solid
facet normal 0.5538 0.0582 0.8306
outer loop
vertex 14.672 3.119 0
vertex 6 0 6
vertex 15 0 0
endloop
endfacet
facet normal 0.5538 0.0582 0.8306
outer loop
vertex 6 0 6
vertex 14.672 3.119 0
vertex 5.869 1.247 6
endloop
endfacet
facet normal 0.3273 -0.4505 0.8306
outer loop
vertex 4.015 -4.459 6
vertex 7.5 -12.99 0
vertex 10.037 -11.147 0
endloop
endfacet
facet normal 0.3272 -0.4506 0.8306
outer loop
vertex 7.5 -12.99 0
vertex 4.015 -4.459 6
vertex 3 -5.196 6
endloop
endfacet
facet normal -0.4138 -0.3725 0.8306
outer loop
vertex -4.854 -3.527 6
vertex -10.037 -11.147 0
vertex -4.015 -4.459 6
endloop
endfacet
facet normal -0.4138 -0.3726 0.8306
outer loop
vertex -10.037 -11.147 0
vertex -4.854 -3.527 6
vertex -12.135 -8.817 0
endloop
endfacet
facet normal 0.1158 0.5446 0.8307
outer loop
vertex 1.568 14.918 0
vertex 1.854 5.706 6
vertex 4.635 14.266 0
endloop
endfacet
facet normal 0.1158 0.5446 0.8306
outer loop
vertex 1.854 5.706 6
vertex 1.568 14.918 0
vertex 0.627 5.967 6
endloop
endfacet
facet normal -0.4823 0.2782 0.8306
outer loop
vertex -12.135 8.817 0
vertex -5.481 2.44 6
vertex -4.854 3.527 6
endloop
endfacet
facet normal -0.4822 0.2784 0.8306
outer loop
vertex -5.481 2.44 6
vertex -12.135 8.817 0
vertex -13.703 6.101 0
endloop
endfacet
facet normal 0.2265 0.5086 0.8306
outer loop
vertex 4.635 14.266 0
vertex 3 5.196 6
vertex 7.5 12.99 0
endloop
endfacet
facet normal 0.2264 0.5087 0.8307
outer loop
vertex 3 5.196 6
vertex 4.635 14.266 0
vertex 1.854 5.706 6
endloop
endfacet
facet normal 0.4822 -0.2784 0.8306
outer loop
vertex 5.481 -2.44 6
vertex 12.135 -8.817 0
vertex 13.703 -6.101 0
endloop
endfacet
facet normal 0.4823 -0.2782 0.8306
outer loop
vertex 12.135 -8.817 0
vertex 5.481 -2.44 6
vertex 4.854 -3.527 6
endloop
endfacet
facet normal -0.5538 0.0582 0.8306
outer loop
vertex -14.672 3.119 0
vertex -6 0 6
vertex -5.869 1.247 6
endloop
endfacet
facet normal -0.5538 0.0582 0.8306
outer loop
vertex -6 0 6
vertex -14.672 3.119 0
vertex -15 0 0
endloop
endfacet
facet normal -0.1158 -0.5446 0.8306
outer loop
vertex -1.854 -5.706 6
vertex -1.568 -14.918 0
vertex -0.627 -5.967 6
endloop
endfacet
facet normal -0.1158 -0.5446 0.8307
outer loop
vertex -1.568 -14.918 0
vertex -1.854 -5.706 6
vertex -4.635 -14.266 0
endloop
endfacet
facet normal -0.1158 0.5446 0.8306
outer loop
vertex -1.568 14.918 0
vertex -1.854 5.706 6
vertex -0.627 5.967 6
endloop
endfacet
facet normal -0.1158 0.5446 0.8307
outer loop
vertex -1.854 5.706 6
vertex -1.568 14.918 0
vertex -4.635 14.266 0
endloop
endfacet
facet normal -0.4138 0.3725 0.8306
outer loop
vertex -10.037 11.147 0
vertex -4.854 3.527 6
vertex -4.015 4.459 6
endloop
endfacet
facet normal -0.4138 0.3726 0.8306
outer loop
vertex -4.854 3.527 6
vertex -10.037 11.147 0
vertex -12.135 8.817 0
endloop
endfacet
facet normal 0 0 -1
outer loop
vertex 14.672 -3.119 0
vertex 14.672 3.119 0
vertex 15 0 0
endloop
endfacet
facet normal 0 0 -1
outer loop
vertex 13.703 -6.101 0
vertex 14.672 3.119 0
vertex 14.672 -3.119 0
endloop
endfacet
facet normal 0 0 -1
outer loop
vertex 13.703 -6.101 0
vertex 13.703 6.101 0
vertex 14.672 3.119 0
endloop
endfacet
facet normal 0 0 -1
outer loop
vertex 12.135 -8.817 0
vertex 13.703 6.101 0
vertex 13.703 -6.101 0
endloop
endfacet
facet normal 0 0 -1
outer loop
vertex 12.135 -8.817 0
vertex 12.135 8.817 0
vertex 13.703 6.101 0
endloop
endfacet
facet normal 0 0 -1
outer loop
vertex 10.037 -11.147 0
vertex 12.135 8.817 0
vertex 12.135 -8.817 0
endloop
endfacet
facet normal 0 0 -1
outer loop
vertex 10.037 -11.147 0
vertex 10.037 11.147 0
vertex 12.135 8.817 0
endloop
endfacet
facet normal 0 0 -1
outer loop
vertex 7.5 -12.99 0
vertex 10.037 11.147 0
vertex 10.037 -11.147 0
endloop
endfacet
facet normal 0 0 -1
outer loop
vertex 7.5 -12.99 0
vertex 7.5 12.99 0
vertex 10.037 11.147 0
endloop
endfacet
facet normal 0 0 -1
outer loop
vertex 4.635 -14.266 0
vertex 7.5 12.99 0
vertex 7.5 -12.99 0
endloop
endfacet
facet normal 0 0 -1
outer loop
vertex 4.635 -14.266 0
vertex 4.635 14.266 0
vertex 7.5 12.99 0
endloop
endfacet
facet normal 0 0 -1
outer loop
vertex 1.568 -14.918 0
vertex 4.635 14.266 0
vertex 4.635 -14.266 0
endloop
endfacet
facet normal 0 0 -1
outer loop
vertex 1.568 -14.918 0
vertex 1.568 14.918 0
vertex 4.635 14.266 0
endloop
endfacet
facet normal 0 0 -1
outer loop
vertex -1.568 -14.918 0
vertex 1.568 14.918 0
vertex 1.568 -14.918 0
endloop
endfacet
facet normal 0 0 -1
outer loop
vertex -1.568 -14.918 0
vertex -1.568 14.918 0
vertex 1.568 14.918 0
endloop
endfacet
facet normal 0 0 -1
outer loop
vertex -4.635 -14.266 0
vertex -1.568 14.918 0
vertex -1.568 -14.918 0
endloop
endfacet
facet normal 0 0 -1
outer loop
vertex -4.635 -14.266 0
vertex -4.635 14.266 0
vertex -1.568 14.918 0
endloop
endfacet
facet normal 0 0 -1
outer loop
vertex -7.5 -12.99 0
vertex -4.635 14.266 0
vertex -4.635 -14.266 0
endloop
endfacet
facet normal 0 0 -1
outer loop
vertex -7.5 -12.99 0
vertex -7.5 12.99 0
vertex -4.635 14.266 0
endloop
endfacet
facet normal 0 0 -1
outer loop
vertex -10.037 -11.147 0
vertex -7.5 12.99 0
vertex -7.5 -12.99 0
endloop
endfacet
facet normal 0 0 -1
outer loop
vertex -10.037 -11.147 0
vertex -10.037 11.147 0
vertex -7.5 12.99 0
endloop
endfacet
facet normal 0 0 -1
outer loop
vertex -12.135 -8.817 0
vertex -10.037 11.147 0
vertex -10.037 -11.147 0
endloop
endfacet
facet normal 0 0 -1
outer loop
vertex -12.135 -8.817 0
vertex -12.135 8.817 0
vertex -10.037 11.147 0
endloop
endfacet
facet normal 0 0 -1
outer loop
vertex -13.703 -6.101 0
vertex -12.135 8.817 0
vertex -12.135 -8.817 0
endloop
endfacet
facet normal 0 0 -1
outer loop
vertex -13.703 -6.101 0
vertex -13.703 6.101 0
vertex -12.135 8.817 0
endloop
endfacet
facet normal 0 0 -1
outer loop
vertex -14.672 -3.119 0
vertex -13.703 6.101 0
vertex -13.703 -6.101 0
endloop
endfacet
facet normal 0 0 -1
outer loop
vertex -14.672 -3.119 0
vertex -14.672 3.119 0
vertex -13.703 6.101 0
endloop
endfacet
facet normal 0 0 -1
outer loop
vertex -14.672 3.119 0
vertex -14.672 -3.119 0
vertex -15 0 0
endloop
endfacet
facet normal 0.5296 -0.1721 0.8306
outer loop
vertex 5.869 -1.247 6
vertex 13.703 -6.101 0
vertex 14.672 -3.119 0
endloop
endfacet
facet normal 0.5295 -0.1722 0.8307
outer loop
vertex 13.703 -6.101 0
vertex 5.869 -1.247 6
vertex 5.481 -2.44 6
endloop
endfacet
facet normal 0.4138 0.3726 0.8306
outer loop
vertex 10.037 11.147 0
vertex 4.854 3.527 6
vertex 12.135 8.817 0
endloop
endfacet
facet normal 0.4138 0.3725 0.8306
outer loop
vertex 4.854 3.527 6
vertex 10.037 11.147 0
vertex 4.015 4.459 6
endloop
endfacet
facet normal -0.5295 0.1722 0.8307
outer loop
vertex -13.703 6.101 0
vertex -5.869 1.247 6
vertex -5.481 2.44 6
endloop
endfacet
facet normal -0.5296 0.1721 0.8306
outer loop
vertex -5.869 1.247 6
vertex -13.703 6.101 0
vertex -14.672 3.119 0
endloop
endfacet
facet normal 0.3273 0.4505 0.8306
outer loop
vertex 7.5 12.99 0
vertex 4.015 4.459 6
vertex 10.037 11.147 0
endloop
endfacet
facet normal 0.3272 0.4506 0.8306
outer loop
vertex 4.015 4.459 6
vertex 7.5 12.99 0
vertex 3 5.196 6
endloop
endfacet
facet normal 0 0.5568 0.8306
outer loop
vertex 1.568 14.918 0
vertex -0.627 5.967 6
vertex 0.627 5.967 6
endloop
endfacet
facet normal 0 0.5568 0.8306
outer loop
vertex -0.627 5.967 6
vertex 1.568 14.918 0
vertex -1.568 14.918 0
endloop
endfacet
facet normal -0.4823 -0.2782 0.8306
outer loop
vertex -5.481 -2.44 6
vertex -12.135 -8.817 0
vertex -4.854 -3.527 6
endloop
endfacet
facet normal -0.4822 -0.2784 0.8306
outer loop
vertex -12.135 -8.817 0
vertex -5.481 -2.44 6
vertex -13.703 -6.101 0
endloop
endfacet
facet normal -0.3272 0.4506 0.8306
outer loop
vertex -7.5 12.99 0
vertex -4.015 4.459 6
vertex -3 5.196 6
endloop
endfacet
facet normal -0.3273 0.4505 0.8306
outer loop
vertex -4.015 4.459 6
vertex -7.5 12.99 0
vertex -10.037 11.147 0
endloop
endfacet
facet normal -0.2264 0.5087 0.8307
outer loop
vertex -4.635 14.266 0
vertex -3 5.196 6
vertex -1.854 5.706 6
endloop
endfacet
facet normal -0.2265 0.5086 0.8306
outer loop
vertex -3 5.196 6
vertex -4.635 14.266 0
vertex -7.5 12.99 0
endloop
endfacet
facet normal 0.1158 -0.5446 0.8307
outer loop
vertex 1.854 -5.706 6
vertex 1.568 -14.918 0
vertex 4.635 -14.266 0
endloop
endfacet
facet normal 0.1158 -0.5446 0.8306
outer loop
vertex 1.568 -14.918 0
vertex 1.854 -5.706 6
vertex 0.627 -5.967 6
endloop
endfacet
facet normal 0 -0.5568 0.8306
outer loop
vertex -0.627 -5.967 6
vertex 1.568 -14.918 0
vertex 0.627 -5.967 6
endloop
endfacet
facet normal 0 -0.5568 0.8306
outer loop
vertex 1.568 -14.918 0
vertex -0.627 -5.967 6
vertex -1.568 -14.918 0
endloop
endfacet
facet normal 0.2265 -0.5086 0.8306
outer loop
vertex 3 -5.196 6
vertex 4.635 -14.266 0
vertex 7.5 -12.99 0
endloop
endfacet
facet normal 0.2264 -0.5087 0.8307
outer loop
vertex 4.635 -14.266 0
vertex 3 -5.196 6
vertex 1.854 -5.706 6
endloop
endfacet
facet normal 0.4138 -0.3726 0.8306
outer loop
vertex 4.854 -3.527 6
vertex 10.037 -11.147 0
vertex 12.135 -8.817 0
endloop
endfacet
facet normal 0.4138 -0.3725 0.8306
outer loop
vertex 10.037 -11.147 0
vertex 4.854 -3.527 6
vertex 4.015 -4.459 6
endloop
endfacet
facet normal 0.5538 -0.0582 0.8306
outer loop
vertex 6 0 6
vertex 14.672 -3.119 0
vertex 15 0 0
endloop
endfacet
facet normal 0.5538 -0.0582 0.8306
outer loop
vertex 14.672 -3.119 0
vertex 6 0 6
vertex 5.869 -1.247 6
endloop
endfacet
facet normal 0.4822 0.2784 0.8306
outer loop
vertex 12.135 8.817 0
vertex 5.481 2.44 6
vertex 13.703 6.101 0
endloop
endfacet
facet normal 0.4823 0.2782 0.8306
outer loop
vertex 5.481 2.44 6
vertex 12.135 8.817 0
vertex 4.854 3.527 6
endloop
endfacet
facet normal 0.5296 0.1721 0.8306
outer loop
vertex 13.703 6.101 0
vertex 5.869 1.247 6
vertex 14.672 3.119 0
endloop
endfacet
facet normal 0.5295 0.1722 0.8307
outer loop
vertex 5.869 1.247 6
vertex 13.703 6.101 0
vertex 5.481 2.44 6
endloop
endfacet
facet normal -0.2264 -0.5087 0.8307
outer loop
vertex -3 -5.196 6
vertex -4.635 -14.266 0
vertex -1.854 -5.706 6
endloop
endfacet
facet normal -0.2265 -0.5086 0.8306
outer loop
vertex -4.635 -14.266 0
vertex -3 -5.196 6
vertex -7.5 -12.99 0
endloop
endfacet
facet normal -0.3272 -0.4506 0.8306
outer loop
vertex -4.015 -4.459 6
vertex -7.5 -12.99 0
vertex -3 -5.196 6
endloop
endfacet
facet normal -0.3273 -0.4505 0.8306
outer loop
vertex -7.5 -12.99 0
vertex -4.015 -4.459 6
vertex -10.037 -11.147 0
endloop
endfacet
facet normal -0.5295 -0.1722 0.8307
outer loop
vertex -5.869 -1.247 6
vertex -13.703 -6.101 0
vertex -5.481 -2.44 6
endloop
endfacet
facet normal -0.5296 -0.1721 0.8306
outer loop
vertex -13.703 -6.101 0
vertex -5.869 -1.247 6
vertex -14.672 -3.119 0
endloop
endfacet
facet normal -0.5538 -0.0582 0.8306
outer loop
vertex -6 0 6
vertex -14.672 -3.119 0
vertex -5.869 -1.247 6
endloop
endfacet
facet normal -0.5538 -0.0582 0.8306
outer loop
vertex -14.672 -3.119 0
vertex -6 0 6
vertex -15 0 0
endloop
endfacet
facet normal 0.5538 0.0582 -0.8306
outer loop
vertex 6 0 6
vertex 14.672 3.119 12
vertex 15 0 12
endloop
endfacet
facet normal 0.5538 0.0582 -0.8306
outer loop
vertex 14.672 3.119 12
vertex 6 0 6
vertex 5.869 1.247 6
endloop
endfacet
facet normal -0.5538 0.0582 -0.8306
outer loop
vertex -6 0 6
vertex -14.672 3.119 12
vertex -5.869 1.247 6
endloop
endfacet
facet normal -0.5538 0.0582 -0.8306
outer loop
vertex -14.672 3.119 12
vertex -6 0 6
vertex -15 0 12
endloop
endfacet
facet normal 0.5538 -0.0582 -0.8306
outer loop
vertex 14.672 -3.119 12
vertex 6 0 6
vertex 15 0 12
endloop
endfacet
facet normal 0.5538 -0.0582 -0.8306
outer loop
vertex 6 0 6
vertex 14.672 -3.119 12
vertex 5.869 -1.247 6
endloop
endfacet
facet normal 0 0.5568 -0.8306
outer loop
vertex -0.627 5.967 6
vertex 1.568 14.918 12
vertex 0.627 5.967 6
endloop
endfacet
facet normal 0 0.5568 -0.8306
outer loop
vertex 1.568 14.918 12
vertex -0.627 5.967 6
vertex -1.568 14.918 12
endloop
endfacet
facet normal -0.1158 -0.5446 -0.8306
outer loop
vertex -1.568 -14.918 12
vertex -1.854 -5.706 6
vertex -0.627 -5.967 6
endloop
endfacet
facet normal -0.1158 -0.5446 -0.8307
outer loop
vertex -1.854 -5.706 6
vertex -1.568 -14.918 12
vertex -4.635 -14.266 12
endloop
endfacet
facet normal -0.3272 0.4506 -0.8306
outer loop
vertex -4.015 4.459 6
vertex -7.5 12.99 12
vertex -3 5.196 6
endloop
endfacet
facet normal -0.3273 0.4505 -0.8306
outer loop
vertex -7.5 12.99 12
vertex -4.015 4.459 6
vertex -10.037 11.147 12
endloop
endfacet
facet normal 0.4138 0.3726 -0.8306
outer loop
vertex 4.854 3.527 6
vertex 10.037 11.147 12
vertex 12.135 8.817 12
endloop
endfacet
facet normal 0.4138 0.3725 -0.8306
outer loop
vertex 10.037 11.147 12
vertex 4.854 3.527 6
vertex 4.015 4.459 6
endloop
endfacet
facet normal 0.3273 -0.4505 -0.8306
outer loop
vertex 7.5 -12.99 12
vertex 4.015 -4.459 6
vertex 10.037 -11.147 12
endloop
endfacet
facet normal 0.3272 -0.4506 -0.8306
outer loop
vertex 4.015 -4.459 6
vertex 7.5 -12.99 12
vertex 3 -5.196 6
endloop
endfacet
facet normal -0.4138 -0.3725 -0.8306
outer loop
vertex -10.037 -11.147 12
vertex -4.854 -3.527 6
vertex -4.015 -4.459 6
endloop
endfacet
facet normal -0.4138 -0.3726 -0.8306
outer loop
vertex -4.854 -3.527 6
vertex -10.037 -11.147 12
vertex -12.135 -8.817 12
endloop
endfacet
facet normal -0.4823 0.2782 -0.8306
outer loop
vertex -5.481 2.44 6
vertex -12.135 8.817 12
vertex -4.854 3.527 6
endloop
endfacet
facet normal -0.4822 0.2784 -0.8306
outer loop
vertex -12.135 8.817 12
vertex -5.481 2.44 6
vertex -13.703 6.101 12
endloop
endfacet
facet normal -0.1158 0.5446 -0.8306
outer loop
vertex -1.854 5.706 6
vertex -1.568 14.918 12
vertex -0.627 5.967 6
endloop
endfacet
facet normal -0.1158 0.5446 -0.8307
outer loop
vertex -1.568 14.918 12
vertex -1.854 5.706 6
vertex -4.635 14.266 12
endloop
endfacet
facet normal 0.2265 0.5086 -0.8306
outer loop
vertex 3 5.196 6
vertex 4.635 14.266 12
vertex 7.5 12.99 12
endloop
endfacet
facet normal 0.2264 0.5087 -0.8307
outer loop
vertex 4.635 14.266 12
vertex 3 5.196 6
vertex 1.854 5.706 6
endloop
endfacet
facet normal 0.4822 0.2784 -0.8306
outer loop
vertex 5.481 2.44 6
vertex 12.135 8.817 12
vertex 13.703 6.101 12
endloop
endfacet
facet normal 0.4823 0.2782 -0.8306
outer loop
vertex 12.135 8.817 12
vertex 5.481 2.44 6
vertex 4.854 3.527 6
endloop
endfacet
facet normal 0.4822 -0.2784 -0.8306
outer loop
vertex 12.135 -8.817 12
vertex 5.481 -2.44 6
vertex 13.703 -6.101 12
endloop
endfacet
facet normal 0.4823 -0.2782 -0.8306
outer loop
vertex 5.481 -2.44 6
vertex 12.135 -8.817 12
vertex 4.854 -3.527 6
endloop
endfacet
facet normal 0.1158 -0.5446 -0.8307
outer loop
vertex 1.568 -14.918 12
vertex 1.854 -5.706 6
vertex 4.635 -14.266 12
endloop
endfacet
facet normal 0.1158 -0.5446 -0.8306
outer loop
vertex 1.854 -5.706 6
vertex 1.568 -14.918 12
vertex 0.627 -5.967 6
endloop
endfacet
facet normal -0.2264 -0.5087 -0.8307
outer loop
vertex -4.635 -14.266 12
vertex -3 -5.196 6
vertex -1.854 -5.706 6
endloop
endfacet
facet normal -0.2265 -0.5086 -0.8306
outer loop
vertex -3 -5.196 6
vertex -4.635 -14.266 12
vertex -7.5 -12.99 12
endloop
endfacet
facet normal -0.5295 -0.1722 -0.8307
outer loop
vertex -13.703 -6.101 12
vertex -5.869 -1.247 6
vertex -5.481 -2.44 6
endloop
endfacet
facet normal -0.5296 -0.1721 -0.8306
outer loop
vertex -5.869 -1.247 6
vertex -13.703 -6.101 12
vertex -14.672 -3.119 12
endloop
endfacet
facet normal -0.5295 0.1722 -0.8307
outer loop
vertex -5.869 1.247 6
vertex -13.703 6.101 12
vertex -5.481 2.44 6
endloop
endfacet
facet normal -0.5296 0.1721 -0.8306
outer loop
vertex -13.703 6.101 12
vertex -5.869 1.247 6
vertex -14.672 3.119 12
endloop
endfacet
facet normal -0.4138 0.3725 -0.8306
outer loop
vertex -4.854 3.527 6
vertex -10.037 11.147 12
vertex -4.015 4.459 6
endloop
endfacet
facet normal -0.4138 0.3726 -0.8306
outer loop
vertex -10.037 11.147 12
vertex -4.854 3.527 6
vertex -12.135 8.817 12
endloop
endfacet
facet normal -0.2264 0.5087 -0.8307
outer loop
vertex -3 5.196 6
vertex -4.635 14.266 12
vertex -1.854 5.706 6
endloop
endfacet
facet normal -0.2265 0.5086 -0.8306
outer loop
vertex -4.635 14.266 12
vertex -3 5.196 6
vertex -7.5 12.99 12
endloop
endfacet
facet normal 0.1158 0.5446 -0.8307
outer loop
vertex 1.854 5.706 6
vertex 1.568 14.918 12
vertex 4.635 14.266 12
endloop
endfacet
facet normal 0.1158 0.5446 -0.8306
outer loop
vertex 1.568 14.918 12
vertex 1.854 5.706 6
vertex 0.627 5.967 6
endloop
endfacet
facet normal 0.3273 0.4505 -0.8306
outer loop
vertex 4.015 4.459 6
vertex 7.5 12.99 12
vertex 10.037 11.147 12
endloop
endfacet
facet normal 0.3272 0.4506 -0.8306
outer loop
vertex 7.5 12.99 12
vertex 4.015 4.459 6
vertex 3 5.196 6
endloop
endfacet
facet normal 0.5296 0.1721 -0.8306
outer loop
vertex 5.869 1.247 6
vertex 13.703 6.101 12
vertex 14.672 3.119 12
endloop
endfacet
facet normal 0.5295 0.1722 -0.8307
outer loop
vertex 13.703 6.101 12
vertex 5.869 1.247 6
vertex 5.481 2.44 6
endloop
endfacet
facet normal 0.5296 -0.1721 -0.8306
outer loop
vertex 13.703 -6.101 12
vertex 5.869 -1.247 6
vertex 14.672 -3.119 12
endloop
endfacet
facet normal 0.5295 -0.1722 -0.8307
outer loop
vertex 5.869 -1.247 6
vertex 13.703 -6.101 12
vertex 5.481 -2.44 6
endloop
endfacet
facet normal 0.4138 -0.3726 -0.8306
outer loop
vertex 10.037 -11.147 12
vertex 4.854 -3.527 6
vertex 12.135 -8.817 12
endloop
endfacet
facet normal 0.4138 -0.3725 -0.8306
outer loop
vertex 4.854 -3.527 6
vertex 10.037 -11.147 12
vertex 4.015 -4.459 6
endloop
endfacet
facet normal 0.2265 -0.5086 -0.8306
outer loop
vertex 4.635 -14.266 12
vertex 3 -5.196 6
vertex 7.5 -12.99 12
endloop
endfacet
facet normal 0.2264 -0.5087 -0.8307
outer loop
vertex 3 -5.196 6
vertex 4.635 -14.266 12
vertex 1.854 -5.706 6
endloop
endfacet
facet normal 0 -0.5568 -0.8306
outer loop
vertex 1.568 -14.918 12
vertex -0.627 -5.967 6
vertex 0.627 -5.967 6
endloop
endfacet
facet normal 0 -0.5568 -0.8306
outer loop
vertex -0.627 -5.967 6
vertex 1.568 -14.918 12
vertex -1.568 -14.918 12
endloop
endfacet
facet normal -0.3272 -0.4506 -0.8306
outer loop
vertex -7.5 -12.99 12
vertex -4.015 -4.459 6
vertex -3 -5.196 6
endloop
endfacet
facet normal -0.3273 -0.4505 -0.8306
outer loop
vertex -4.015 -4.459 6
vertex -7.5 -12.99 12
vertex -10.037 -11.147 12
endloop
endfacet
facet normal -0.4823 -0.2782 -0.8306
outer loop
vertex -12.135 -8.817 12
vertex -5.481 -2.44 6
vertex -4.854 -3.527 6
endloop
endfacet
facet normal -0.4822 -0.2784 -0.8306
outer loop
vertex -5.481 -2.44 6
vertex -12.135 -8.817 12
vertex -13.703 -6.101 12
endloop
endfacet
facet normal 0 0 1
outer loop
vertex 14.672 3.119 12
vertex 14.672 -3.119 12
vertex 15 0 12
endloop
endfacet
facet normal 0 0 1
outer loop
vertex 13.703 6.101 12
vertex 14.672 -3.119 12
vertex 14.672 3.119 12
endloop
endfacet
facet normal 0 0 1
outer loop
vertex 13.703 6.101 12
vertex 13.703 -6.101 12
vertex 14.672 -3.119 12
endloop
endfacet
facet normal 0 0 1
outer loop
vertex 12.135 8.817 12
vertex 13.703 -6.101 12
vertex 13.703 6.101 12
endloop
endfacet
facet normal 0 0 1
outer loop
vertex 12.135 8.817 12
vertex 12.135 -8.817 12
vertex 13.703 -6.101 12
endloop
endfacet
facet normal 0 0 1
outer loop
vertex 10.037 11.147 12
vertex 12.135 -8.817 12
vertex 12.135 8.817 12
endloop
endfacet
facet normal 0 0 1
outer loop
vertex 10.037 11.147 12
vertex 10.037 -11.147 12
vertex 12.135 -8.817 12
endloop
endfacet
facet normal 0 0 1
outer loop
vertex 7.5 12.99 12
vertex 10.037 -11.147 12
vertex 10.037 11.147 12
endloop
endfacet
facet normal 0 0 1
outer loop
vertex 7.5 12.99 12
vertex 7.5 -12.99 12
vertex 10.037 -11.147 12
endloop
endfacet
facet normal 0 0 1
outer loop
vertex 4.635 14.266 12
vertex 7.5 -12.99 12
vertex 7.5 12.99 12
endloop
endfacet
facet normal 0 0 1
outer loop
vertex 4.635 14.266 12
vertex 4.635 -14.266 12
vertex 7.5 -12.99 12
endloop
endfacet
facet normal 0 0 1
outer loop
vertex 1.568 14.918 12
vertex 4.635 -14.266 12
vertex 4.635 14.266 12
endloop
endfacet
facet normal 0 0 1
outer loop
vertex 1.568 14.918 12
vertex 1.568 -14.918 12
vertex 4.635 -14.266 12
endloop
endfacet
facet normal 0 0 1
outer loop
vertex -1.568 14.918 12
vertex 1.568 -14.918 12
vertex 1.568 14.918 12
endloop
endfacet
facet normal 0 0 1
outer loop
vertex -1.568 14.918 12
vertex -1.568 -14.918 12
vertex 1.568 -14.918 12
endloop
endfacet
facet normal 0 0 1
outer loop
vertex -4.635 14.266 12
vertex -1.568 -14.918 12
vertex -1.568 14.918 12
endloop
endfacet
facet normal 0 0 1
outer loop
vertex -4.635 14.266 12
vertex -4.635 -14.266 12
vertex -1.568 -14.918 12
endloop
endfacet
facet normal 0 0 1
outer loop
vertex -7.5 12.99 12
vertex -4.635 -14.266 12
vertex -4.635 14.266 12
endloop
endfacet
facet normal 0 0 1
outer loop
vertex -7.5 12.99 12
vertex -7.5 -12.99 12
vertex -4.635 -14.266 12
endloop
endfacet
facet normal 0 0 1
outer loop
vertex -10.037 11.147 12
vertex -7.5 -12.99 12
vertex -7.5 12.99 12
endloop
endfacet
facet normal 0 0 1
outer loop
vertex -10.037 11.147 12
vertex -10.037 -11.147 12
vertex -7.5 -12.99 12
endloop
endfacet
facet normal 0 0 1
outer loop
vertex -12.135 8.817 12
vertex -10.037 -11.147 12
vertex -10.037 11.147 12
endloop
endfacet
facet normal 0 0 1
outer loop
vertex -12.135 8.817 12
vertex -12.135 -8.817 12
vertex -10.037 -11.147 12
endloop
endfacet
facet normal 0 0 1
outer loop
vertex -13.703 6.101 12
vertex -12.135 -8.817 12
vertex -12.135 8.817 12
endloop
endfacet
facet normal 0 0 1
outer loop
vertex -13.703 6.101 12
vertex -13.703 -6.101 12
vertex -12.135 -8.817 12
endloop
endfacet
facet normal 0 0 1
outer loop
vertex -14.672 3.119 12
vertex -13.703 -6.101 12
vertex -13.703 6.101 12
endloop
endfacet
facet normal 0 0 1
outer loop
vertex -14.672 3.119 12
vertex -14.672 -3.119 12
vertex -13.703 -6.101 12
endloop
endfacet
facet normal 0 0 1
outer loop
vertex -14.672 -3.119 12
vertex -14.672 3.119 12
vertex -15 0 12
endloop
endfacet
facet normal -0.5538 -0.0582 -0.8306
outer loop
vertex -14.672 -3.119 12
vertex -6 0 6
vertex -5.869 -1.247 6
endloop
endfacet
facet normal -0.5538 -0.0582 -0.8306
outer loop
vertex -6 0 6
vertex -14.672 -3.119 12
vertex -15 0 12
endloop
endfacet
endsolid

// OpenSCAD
H= 10;
R = 15;
union() {
    cylinder(h=H,r1 = R, r2 = 0);
    translate([0,0,H/2-3])
    cylinder(h=H,r1 = 0, r2 = R);
}
